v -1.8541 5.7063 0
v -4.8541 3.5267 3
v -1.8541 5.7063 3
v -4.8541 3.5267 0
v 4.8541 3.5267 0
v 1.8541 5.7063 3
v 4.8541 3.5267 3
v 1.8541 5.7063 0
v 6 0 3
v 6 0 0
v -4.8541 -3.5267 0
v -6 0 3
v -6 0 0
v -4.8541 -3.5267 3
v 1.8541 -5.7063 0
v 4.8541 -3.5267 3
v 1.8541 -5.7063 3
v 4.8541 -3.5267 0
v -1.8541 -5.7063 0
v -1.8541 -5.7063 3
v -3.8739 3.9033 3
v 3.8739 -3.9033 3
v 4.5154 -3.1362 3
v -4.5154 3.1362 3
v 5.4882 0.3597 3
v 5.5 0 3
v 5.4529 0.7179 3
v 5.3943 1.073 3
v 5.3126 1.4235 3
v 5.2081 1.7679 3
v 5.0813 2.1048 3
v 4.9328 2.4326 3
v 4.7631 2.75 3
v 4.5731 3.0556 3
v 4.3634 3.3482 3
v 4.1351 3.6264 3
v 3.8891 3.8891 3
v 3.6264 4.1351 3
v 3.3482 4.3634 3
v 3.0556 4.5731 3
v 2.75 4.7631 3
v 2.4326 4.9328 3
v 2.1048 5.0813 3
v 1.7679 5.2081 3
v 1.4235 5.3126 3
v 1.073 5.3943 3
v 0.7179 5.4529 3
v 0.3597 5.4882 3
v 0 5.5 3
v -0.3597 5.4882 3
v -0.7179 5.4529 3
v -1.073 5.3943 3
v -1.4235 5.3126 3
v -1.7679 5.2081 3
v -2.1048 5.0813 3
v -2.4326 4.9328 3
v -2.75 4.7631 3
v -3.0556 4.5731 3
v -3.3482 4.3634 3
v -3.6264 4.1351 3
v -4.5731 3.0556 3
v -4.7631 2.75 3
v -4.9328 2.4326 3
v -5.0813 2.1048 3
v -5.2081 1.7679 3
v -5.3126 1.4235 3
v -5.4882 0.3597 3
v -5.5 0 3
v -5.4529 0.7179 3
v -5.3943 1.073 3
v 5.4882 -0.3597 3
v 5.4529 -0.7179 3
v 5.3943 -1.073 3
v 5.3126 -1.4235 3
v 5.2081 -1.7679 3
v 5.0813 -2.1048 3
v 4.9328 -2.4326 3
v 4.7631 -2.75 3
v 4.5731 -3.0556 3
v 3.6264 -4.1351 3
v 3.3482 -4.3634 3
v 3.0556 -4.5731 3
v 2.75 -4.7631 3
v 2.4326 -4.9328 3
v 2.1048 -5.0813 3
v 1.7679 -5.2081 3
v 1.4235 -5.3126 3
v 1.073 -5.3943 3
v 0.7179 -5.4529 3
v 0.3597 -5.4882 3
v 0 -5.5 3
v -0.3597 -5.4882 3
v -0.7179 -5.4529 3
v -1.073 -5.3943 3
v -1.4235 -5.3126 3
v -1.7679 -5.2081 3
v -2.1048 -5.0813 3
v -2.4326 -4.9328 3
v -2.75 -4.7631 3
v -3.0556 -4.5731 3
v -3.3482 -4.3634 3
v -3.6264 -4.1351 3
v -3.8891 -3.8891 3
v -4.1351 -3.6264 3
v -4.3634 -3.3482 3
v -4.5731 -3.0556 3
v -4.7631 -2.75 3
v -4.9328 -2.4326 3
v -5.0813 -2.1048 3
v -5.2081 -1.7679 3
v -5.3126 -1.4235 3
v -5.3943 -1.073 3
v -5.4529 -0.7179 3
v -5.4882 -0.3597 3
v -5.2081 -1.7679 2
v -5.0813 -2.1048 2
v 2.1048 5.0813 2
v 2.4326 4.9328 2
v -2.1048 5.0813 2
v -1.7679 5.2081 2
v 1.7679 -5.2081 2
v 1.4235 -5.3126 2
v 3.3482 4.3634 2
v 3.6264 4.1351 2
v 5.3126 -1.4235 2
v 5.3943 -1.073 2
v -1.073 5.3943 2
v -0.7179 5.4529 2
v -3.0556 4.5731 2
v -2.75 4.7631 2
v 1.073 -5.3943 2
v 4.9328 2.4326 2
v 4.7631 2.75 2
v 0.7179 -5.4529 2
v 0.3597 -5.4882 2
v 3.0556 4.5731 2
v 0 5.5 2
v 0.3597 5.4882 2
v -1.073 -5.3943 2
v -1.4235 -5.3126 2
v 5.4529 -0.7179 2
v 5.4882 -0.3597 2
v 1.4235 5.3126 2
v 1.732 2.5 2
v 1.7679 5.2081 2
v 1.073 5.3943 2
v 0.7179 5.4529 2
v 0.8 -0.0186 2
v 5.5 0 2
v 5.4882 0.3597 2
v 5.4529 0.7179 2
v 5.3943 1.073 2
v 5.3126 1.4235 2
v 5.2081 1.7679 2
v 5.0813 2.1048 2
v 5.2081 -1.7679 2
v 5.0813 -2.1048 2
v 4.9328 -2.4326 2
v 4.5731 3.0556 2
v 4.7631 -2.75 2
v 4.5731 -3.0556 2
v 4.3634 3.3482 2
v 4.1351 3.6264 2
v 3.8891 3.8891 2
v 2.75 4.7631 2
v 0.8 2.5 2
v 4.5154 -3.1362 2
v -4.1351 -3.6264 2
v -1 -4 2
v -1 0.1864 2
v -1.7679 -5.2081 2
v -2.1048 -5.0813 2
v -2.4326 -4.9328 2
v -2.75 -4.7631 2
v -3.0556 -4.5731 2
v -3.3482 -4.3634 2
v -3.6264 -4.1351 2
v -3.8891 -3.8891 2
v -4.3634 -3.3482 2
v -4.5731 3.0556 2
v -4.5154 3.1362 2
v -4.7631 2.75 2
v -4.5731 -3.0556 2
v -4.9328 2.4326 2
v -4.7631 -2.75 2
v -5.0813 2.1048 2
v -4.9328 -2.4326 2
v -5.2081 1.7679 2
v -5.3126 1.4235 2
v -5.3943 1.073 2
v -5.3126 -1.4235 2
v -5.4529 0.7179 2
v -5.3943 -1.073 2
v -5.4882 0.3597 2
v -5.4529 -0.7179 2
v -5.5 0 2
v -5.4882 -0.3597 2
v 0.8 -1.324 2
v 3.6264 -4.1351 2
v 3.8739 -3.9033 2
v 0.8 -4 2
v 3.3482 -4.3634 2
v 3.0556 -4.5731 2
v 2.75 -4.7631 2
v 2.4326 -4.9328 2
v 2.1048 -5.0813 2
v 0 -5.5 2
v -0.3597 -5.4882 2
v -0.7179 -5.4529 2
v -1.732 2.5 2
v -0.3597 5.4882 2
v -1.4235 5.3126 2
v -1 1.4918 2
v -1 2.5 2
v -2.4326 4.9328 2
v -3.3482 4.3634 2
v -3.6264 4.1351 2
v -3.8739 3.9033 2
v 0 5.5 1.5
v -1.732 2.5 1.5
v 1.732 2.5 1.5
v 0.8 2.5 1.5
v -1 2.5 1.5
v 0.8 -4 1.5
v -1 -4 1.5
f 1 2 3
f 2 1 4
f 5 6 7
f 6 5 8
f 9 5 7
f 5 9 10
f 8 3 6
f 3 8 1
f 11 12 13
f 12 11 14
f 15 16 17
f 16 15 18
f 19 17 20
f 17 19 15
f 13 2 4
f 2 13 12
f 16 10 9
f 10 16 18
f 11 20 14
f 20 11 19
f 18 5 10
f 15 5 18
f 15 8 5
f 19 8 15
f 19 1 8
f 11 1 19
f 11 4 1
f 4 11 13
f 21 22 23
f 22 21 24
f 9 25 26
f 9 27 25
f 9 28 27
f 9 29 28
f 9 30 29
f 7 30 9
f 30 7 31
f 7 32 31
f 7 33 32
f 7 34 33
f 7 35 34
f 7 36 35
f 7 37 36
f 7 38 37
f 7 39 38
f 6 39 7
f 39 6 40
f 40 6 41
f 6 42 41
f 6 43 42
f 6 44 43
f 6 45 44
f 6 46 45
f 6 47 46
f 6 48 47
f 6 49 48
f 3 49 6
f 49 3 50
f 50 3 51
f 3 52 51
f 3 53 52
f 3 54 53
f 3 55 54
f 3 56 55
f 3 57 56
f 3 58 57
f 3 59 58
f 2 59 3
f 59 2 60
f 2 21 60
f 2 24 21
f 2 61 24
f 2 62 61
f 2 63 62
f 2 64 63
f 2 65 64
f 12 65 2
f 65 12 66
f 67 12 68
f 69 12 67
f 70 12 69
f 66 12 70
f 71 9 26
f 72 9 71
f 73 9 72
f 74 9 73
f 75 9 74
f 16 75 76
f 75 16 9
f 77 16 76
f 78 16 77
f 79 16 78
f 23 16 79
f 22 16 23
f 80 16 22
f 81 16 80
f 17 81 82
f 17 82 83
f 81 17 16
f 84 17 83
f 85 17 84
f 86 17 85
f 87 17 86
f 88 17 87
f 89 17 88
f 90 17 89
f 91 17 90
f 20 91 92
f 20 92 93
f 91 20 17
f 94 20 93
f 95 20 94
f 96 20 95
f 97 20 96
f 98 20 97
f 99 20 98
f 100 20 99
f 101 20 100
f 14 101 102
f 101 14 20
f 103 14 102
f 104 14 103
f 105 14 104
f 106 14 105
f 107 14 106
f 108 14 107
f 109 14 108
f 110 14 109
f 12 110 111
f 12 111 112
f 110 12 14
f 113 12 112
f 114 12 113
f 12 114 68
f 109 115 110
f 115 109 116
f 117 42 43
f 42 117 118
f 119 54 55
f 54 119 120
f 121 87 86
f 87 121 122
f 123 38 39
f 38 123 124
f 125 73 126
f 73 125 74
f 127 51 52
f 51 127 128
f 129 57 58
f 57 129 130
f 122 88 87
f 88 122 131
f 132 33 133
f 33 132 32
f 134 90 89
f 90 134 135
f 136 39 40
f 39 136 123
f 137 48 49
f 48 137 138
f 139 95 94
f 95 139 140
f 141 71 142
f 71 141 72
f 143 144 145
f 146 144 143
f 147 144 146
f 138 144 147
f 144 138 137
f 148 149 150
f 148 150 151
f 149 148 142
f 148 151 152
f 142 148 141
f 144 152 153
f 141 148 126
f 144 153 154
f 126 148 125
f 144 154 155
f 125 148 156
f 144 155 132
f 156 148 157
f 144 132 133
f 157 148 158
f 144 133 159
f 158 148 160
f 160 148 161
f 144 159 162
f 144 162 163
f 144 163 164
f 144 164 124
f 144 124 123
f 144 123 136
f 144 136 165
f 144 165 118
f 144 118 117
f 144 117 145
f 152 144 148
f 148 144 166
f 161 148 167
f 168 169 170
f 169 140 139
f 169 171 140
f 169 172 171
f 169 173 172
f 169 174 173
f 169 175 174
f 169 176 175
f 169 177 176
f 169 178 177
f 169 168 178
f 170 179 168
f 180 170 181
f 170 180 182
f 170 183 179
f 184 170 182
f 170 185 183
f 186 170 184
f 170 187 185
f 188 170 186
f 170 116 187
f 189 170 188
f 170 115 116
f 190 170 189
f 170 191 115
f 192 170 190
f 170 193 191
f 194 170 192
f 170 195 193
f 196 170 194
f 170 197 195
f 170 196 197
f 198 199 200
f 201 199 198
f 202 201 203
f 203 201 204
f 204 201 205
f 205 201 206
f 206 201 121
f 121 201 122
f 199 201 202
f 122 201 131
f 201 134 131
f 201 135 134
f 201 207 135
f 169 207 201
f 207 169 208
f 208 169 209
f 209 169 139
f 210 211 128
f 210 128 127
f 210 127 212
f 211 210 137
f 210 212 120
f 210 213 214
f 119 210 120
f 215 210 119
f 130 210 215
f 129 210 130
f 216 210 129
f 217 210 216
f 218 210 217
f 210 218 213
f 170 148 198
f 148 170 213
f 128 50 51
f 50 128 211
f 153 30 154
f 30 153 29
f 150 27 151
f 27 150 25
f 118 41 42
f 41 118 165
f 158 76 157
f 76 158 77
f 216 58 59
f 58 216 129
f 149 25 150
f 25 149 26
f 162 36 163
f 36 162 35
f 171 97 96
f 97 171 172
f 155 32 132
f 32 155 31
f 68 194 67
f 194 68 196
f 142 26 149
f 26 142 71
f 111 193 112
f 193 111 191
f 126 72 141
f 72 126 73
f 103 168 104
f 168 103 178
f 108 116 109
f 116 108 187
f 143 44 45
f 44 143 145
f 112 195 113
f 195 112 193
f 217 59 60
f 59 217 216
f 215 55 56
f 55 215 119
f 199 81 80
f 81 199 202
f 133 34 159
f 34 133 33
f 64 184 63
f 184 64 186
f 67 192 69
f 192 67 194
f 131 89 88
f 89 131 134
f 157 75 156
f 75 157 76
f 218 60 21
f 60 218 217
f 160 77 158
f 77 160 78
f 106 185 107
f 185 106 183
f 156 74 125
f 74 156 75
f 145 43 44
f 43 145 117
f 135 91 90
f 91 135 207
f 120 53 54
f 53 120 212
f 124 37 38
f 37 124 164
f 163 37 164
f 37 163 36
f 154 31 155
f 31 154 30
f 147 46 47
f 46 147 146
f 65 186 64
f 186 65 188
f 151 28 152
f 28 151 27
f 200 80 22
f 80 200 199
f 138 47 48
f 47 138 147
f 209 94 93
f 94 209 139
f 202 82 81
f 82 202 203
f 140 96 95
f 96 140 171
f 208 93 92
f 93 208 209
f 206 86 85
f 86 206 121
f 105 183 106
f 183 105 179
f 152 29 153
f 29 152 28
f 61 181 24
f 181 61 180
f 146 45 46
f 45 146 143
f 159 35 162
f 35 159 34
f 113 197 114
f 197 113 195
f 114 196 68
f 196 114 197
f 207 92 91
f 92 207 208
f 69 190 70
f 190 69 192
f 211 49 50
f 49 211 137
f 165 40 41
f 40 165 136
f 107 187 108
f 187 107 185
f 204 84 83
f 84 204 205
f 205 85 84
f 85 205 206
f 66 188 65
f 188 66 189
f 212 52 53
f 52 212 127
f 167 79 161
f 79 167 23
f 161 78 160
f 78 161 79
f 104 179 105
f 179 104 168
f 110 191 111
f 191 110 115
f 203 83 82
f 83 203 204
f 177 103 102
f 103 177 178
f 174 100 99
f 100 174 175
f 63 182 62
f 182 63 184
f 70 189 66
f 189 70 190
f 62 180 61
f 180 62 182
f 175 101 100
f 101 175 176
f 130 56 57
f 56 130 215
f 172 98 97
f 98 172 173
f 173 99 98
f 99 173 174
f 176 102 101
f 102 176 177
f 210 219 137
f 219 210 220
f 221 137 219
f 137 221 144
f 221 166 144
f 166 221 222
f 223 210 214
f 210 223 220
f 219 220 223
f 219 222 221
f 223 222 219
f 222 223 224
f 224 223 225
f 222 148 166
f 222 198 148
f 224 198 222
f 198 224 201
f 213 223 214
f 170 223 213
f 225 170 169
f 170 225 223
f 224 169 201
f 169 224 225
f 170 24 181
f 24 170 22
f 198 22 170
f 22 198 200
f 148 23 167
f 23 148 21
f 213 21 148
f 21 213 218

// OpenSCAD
difference() {
    color("blue")
    difference() {
        cylinder(d=12,h=3,$fn=10);
        translate([0,0,2])
        cylinder(d=11,h=1.5,$fn=96);
    }
    
    color("gold")
    union() {
        translate([0,3.5,1.5])
        rotate([0,0,-30])
        cylinder(d=4,h=1, $fn=3);
        translate([-1,-4,1.5])
        cube([1.8,6.6,1]);
    }
}

rotate([0,0,50])
translate([0,0,2.5])
color("blue")
cube([1,11,1], center=true);
